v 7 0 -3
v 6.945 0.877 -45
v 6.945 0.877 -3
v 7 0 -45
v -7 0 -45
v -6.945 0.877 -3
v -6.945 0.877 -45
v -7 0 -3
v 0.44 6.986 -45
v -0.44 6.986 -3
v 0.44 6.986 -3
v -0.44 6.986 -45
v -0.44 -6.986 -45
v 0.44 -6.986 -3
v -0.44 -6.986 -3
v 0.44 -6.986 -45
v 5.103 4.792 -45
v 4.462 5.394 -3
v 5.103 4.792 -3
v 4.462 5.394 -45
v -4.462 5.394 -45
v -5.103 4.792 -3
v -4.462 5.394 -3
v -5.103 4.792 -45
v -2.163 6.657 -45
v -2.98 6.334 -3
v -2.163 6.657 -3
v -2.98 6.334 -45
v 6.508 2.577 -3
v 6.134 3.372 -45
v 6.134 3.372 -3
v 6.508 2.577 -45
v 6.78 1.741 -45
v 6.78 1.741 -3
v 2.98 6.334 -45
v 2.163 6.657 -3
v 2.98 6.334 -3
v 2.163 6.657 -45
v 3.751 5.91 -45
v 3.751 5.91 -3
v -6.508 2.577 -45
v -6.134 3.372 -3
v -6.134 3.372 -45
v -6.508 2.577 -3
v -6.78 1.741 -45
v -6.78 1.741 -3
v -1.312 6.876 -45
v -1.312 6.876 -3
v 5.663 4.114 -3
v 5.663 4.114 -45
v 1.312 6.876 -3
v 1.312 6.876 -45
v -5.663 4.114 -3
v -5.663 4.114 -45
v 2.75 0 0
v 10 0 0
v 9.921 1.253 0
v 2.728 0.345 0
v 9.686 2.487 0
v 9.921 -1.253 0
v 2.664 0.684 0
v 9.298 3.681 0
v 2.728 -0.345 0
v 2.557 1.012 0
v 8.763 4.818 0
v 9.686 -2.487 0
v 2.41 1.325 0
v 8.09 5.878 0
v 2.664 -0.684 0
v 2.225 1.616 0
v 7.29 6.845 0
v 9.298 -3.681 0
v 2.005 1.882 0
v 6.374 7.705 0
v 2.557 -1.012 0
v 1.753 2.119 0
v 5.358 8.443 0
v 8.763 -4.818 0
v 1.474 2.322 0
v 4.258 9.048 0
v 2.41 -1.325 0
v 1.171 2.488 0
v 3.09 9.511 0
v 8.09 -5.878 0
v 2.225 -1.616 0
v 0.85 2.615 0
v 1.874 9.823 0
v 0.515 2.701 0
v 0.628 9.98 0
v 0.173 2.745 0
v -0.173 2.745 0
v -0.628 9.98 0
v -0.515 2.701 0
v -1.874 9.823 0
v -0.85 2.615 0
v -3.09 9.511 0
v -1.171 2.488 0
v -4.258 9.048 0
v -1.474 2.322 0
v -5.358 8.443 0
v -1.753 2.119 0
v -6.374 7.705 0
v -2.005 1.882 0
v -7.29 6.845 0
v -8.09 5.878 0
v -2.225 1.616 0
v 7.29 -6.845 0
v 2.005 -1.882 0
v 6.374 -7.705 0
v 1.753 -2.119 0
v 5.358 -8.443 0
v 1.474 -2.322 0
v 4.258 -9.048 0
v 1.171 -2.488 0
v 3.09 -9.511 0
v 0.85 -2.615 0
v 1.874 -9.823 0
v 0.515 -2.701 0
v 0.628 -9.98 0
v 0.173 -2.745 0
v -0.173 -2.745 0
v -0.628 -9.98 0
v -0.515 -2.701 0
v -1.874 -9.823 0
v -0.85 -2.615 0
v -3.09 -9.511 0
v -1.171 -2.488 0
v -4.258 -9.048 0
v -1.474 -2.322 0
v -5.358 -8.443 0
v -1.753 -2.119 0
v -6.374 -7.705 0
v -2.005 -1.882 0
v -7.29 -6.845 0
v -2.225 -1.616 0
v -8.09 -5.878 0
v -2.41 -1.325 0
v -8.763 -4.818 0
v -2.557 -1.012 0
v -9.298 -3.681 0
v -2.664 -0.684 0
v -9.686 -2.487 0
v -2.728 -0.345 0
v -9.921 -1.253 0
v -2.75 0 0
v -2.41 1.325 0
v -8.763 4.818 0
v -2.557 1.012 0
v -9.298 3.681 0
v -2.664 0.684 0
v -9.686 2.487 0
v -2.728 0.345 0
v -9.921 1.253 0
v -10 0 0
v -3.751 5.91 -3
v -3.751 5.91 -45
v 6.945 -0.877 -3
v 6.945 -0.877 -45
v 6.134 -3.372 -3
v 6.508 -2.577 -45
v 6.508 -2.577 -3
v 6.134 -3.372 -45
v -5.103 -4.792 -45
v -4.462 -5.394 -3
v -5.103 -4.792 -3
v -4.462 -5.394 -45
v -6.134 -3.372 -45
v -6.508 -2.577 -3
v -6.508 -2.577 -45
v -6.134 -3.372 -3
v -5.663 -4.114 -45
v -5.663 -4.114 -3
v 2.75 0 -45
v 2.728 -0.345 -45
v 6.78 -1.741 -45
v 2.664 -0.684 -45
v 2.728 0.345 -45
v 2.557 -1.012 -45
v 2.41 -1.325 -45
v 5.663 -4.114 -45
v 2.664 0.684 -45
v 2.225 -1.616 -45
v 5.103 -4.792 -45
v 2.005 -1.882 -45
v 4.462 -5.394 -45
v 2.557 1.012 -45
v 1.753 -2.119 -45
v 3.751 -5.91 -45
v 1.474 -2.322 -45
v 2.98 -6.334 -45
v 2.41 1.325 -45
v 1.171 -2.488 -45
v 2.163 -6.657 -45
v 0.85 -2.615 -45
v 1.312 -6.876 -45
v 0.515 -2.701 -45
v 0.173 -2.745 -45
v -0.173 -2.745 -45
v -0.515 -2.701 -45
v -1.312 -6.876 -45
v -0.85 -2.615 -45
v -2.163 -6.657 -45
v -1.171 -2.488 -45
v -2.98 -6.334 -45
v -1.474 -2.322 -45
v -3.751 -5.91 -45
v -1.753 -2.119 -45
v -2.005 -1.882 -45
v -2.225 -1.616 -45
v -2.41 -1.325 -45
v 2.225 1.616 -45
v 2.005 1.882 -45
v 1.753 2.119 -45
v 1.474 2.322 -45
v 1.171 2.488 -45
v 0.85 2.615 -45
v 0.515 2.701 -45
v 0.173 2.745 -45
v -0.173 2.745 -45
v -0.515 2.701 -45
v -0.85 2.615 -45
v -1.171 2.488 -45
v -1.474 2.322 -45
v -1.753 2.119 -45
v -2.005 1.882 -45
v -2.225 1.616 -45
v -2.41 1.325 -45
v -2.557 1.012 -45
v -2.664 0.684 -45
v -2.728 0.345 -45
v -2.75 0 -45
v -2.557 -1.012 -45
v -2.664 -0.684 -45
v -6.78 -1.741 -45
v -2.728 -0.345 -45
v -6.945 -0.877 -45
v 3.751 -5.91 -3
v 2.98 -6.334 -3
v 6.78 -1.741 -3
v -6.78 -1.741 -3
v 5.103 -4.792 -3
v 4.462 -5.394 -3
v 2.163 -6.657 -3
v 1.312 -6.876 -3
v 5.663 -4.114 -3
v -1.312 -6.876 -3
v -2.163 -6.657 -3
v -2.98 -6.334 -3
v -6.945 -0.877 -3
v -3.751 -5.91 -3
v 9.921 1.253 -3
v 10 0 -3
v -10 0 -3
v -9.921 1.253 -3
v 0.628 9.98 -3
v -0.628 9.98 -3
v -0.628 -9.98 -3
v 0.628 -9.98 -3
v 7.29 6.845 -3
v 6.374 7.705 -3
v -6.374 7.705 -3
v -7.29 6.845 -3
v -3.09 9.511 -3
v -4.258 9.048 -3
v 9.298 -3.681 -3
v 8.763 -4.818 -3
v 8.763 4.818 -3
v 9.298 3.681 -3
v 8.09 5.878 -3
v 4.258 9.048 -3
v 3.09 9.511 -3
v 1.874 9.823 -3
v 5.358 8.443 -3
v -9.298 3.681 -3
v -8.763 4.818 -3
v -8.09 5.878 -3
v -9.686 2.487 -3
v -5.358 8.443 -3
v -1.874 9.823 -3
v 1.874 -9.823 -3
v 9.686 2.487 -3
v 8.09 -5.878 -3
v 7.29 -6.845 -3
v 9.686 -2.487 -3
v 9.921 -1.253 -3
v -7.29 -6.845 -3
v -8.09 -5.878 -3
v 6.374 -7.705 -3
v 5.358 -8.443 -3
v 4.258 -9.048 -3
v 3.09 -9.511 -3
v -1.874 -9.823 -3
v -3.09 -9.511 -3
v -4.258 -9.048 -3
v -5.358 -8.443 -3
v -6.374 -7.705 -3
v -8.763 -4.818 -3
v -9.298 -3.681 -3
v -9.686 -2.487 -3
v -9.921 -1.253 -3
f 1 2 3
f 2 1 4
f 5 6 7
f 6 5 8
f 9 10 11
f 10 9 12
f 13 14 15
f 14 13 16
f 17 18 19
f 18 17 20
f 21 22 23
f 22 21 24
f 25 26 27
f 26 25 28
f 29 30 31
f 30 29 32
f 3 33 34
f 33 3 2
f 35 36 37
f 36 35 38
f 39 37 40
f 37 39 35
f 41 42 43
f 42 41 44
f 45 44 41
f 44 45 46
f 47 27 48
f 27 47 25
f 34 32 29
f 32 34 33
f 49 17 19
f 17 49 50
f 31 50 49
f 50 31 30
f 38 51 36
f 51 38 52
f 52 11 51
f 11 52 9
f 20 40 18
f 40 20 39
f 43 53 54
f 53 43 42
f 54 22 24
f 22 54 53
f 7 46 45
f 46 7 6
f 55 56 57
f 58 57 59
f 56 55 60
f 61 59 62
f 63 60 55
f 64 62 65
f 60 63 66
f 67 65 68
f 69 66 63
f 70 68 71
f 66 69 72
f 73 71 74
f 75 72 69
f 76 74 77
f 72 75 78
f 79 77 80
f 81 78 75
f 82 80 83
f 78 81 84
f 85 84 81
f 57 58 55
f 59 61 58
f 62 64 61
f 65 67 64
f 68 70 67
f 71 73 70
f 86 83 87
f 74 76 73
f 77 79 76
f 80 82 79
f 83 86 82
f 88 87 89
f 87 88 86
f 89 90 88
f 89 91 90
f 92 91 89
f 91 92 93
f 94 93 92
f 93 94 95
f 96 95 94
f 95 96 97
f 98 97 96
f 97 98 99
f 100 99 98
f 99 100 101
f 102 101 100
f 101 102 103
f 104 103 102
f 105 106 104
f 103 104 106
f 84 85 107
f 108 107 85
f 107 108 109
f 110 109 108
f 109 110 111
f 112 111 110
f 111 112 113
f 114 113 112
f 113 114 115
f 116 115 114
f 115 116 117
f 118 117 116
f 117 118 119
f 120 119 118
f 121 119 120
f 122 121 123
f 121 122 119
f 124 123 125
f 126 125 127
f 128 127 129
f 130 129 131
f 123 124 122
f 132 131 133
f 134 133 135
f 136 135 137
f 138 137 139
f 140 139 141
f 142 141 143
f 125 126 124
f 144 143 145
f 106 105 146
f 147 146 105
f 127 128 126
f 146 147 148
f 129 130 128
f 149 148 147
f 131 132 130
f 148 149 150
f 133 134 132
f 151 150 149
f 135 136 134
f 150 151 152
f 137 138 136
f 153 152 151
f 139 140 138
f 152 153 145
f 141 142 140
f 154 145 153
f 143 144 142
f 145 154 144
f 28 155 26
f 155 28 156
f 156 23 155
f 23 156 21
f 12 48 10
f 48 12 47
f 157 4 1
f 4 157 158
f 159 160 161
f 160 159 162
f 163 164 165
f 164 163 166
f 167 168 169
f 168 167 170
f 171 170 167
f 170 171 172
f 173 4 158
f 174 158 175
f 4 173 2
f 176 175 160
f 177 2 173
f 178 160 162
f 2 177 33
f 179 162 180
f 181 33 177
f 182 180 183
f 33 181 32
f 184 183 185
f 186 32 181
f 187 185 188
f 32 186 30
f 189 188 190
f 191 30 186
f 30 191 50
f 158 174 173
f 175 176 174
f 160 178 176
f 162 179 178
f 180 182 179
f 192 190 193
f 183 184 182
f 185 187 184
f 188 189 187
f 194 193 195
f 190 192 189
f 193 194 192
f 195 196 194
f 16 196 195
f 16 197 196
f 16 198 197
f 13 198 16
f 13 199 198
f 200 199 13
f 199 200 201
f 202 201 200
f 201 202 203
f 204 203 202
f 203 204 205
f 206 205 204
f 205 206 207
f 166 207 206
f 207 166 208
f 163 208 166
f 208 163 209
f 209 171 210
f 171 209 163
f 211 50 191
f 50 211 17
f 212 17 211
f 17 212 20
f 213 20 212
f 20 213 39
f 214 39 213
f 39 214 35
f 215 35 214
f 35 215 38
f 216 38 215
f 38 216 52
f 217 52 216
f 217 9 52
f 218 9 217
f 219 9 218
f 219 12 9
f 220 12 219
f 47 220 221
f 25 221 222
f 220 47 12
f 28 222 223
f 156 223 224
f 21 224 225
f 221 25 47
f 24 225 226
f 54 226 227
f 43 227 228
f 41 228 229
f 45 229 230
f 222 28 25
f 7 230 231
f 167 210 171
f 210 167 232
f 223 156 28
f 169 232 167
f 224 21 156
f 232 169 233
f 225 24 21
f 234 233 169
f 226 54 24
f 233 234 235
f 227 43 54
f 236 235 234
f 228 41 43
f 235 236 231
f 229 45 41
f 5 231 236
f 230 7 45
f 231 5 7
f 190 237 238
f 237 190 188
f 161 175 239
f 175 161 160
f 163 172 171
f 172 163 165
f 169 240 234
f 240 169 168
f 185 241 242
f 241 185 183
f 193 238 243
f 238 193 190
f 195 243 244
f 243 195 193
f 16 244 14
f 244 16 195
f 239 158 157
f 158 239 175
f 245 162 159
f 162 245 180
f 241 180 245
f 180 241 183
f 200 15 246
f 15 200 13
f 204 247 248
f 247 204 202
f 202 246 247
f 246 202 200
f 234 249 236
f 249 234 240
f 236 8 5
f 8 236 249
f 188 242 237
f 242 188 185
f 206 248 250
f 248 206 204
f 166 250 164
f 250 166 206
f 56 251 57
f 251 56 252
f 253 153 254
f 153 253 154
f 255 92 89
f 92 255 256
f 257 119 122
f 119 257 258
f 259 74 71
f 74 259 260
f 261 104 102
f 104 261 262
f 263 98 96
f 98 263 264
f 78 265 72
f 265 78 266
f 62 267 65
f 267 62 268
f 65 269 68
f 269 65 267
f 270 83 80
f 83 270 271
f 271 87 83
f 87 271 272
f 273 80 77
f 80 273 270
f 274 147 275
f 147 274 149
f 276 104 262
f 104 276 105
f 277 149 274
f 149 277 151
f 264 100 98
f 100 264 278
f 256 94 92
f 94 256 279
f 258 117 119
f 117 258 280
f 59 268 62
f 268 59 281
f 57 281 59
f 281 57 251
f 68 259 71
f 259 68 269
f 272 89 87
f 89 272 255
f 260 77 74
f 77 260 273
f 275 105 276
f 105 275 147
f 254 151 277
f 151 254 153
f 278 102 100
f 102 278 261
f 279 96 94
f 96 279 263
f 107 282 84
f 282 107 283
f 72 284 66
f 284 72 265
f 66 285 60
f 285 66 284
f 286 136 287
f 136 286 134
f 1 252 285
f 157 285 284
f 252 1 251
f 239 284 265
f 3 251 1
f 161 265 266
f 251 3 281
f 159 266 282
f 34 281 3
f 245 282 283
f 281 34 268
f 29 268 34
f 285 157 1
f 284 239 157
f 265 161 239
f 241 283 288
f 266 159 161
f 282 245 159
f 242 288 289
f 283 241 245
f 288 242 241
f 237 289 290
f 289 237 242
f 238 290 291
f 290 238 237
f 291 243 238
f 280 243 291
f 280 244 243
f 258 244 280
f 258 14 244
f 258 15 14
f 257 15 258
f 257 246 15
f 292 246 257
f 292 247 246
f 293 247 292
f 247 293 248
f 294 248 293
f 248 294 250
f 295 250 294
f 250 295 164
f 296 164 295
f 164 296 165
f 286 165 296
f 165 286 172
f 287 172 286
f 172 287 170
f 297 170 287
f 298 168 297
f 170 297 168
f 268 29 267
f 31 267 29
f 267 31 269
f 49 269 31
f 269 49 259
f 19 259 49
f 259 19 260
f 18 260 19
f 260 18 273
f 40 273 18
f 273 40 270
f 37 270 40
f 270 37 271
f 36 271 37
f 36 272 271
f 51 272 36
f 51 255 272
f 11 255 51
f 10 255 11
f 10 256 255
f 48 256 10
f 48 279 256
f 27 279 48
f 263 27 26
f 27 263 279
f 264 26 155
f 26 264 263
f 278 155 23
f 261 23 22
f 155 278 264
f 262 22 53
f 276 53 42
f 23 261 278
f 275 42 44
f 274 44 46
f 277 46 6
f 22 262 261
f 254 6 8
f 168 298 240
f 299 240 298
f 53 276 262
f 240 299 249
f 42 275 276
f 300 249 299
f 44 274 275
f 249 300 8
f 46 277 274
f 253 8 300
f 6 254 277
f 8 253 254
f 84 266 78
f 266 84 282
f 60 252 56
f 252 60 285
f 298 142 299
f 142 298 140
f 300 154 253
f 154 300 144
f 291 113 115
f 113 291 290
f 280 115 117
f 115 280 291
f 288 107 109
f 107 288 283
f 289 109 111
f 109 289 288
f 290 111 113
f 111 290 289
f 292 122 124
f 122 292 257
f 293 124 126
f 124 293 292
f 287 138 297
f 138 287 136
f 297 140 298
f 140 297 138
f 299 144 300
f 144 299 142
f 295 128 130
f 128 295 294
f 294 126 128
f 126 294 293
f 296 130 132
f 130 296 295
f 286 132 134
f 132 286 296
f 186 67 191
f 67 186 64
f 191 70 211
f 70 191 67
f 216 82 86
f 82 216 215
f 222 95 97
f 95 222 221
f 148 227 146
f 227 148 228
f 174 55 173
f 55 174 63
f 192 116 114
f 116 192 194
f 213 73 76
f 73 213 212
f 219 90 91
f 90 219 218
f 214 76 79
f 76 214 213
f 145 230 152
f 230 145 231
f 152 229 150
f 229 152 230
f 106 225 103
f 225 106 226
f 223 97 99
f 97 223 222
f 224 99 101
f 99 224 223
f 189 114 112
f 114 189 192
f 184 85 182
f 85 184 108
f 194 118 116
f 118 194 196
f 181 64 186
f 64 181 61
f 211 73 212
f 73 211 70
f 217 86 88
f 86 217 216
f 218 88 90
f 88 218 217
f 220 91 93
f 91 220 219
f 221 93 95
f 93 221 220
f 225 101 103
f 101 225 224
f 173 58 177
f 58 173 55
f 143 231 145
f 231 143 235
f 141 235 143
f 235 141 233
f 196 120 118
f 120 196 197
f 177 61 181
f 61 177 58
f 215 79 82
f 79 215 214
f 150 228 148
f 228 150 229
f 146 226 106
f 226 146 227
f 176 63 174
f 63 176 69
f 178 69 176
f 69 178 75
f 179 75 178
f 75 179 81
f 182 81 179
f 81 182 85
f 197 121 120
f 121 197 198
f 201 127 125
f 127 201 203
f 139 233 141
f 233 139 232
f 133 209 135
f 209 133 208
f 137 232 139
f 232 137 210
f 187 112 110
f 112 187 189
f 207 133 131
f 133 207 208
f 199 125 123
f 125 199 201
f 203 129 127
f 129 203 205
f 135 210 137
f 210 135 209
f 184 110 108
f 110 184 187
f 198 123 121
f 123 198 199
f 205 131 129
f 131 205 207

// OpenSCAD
$fn = 50;


difference() {
	union() {
		translate(v = [0, 0, -45.0000000000]) {
			cylinder(h = 45, r = 7.0000000000);
		}
		translate(v = [0, 0, -3.0000000000]) {
			cylinder(h = 3, r = 10.0000000000);
		}
	}
	union() {
		#translate(v = [0, 0, -45]) {
			cylinder(h = 45, r = 2.7500000000);
		}
	}
}
